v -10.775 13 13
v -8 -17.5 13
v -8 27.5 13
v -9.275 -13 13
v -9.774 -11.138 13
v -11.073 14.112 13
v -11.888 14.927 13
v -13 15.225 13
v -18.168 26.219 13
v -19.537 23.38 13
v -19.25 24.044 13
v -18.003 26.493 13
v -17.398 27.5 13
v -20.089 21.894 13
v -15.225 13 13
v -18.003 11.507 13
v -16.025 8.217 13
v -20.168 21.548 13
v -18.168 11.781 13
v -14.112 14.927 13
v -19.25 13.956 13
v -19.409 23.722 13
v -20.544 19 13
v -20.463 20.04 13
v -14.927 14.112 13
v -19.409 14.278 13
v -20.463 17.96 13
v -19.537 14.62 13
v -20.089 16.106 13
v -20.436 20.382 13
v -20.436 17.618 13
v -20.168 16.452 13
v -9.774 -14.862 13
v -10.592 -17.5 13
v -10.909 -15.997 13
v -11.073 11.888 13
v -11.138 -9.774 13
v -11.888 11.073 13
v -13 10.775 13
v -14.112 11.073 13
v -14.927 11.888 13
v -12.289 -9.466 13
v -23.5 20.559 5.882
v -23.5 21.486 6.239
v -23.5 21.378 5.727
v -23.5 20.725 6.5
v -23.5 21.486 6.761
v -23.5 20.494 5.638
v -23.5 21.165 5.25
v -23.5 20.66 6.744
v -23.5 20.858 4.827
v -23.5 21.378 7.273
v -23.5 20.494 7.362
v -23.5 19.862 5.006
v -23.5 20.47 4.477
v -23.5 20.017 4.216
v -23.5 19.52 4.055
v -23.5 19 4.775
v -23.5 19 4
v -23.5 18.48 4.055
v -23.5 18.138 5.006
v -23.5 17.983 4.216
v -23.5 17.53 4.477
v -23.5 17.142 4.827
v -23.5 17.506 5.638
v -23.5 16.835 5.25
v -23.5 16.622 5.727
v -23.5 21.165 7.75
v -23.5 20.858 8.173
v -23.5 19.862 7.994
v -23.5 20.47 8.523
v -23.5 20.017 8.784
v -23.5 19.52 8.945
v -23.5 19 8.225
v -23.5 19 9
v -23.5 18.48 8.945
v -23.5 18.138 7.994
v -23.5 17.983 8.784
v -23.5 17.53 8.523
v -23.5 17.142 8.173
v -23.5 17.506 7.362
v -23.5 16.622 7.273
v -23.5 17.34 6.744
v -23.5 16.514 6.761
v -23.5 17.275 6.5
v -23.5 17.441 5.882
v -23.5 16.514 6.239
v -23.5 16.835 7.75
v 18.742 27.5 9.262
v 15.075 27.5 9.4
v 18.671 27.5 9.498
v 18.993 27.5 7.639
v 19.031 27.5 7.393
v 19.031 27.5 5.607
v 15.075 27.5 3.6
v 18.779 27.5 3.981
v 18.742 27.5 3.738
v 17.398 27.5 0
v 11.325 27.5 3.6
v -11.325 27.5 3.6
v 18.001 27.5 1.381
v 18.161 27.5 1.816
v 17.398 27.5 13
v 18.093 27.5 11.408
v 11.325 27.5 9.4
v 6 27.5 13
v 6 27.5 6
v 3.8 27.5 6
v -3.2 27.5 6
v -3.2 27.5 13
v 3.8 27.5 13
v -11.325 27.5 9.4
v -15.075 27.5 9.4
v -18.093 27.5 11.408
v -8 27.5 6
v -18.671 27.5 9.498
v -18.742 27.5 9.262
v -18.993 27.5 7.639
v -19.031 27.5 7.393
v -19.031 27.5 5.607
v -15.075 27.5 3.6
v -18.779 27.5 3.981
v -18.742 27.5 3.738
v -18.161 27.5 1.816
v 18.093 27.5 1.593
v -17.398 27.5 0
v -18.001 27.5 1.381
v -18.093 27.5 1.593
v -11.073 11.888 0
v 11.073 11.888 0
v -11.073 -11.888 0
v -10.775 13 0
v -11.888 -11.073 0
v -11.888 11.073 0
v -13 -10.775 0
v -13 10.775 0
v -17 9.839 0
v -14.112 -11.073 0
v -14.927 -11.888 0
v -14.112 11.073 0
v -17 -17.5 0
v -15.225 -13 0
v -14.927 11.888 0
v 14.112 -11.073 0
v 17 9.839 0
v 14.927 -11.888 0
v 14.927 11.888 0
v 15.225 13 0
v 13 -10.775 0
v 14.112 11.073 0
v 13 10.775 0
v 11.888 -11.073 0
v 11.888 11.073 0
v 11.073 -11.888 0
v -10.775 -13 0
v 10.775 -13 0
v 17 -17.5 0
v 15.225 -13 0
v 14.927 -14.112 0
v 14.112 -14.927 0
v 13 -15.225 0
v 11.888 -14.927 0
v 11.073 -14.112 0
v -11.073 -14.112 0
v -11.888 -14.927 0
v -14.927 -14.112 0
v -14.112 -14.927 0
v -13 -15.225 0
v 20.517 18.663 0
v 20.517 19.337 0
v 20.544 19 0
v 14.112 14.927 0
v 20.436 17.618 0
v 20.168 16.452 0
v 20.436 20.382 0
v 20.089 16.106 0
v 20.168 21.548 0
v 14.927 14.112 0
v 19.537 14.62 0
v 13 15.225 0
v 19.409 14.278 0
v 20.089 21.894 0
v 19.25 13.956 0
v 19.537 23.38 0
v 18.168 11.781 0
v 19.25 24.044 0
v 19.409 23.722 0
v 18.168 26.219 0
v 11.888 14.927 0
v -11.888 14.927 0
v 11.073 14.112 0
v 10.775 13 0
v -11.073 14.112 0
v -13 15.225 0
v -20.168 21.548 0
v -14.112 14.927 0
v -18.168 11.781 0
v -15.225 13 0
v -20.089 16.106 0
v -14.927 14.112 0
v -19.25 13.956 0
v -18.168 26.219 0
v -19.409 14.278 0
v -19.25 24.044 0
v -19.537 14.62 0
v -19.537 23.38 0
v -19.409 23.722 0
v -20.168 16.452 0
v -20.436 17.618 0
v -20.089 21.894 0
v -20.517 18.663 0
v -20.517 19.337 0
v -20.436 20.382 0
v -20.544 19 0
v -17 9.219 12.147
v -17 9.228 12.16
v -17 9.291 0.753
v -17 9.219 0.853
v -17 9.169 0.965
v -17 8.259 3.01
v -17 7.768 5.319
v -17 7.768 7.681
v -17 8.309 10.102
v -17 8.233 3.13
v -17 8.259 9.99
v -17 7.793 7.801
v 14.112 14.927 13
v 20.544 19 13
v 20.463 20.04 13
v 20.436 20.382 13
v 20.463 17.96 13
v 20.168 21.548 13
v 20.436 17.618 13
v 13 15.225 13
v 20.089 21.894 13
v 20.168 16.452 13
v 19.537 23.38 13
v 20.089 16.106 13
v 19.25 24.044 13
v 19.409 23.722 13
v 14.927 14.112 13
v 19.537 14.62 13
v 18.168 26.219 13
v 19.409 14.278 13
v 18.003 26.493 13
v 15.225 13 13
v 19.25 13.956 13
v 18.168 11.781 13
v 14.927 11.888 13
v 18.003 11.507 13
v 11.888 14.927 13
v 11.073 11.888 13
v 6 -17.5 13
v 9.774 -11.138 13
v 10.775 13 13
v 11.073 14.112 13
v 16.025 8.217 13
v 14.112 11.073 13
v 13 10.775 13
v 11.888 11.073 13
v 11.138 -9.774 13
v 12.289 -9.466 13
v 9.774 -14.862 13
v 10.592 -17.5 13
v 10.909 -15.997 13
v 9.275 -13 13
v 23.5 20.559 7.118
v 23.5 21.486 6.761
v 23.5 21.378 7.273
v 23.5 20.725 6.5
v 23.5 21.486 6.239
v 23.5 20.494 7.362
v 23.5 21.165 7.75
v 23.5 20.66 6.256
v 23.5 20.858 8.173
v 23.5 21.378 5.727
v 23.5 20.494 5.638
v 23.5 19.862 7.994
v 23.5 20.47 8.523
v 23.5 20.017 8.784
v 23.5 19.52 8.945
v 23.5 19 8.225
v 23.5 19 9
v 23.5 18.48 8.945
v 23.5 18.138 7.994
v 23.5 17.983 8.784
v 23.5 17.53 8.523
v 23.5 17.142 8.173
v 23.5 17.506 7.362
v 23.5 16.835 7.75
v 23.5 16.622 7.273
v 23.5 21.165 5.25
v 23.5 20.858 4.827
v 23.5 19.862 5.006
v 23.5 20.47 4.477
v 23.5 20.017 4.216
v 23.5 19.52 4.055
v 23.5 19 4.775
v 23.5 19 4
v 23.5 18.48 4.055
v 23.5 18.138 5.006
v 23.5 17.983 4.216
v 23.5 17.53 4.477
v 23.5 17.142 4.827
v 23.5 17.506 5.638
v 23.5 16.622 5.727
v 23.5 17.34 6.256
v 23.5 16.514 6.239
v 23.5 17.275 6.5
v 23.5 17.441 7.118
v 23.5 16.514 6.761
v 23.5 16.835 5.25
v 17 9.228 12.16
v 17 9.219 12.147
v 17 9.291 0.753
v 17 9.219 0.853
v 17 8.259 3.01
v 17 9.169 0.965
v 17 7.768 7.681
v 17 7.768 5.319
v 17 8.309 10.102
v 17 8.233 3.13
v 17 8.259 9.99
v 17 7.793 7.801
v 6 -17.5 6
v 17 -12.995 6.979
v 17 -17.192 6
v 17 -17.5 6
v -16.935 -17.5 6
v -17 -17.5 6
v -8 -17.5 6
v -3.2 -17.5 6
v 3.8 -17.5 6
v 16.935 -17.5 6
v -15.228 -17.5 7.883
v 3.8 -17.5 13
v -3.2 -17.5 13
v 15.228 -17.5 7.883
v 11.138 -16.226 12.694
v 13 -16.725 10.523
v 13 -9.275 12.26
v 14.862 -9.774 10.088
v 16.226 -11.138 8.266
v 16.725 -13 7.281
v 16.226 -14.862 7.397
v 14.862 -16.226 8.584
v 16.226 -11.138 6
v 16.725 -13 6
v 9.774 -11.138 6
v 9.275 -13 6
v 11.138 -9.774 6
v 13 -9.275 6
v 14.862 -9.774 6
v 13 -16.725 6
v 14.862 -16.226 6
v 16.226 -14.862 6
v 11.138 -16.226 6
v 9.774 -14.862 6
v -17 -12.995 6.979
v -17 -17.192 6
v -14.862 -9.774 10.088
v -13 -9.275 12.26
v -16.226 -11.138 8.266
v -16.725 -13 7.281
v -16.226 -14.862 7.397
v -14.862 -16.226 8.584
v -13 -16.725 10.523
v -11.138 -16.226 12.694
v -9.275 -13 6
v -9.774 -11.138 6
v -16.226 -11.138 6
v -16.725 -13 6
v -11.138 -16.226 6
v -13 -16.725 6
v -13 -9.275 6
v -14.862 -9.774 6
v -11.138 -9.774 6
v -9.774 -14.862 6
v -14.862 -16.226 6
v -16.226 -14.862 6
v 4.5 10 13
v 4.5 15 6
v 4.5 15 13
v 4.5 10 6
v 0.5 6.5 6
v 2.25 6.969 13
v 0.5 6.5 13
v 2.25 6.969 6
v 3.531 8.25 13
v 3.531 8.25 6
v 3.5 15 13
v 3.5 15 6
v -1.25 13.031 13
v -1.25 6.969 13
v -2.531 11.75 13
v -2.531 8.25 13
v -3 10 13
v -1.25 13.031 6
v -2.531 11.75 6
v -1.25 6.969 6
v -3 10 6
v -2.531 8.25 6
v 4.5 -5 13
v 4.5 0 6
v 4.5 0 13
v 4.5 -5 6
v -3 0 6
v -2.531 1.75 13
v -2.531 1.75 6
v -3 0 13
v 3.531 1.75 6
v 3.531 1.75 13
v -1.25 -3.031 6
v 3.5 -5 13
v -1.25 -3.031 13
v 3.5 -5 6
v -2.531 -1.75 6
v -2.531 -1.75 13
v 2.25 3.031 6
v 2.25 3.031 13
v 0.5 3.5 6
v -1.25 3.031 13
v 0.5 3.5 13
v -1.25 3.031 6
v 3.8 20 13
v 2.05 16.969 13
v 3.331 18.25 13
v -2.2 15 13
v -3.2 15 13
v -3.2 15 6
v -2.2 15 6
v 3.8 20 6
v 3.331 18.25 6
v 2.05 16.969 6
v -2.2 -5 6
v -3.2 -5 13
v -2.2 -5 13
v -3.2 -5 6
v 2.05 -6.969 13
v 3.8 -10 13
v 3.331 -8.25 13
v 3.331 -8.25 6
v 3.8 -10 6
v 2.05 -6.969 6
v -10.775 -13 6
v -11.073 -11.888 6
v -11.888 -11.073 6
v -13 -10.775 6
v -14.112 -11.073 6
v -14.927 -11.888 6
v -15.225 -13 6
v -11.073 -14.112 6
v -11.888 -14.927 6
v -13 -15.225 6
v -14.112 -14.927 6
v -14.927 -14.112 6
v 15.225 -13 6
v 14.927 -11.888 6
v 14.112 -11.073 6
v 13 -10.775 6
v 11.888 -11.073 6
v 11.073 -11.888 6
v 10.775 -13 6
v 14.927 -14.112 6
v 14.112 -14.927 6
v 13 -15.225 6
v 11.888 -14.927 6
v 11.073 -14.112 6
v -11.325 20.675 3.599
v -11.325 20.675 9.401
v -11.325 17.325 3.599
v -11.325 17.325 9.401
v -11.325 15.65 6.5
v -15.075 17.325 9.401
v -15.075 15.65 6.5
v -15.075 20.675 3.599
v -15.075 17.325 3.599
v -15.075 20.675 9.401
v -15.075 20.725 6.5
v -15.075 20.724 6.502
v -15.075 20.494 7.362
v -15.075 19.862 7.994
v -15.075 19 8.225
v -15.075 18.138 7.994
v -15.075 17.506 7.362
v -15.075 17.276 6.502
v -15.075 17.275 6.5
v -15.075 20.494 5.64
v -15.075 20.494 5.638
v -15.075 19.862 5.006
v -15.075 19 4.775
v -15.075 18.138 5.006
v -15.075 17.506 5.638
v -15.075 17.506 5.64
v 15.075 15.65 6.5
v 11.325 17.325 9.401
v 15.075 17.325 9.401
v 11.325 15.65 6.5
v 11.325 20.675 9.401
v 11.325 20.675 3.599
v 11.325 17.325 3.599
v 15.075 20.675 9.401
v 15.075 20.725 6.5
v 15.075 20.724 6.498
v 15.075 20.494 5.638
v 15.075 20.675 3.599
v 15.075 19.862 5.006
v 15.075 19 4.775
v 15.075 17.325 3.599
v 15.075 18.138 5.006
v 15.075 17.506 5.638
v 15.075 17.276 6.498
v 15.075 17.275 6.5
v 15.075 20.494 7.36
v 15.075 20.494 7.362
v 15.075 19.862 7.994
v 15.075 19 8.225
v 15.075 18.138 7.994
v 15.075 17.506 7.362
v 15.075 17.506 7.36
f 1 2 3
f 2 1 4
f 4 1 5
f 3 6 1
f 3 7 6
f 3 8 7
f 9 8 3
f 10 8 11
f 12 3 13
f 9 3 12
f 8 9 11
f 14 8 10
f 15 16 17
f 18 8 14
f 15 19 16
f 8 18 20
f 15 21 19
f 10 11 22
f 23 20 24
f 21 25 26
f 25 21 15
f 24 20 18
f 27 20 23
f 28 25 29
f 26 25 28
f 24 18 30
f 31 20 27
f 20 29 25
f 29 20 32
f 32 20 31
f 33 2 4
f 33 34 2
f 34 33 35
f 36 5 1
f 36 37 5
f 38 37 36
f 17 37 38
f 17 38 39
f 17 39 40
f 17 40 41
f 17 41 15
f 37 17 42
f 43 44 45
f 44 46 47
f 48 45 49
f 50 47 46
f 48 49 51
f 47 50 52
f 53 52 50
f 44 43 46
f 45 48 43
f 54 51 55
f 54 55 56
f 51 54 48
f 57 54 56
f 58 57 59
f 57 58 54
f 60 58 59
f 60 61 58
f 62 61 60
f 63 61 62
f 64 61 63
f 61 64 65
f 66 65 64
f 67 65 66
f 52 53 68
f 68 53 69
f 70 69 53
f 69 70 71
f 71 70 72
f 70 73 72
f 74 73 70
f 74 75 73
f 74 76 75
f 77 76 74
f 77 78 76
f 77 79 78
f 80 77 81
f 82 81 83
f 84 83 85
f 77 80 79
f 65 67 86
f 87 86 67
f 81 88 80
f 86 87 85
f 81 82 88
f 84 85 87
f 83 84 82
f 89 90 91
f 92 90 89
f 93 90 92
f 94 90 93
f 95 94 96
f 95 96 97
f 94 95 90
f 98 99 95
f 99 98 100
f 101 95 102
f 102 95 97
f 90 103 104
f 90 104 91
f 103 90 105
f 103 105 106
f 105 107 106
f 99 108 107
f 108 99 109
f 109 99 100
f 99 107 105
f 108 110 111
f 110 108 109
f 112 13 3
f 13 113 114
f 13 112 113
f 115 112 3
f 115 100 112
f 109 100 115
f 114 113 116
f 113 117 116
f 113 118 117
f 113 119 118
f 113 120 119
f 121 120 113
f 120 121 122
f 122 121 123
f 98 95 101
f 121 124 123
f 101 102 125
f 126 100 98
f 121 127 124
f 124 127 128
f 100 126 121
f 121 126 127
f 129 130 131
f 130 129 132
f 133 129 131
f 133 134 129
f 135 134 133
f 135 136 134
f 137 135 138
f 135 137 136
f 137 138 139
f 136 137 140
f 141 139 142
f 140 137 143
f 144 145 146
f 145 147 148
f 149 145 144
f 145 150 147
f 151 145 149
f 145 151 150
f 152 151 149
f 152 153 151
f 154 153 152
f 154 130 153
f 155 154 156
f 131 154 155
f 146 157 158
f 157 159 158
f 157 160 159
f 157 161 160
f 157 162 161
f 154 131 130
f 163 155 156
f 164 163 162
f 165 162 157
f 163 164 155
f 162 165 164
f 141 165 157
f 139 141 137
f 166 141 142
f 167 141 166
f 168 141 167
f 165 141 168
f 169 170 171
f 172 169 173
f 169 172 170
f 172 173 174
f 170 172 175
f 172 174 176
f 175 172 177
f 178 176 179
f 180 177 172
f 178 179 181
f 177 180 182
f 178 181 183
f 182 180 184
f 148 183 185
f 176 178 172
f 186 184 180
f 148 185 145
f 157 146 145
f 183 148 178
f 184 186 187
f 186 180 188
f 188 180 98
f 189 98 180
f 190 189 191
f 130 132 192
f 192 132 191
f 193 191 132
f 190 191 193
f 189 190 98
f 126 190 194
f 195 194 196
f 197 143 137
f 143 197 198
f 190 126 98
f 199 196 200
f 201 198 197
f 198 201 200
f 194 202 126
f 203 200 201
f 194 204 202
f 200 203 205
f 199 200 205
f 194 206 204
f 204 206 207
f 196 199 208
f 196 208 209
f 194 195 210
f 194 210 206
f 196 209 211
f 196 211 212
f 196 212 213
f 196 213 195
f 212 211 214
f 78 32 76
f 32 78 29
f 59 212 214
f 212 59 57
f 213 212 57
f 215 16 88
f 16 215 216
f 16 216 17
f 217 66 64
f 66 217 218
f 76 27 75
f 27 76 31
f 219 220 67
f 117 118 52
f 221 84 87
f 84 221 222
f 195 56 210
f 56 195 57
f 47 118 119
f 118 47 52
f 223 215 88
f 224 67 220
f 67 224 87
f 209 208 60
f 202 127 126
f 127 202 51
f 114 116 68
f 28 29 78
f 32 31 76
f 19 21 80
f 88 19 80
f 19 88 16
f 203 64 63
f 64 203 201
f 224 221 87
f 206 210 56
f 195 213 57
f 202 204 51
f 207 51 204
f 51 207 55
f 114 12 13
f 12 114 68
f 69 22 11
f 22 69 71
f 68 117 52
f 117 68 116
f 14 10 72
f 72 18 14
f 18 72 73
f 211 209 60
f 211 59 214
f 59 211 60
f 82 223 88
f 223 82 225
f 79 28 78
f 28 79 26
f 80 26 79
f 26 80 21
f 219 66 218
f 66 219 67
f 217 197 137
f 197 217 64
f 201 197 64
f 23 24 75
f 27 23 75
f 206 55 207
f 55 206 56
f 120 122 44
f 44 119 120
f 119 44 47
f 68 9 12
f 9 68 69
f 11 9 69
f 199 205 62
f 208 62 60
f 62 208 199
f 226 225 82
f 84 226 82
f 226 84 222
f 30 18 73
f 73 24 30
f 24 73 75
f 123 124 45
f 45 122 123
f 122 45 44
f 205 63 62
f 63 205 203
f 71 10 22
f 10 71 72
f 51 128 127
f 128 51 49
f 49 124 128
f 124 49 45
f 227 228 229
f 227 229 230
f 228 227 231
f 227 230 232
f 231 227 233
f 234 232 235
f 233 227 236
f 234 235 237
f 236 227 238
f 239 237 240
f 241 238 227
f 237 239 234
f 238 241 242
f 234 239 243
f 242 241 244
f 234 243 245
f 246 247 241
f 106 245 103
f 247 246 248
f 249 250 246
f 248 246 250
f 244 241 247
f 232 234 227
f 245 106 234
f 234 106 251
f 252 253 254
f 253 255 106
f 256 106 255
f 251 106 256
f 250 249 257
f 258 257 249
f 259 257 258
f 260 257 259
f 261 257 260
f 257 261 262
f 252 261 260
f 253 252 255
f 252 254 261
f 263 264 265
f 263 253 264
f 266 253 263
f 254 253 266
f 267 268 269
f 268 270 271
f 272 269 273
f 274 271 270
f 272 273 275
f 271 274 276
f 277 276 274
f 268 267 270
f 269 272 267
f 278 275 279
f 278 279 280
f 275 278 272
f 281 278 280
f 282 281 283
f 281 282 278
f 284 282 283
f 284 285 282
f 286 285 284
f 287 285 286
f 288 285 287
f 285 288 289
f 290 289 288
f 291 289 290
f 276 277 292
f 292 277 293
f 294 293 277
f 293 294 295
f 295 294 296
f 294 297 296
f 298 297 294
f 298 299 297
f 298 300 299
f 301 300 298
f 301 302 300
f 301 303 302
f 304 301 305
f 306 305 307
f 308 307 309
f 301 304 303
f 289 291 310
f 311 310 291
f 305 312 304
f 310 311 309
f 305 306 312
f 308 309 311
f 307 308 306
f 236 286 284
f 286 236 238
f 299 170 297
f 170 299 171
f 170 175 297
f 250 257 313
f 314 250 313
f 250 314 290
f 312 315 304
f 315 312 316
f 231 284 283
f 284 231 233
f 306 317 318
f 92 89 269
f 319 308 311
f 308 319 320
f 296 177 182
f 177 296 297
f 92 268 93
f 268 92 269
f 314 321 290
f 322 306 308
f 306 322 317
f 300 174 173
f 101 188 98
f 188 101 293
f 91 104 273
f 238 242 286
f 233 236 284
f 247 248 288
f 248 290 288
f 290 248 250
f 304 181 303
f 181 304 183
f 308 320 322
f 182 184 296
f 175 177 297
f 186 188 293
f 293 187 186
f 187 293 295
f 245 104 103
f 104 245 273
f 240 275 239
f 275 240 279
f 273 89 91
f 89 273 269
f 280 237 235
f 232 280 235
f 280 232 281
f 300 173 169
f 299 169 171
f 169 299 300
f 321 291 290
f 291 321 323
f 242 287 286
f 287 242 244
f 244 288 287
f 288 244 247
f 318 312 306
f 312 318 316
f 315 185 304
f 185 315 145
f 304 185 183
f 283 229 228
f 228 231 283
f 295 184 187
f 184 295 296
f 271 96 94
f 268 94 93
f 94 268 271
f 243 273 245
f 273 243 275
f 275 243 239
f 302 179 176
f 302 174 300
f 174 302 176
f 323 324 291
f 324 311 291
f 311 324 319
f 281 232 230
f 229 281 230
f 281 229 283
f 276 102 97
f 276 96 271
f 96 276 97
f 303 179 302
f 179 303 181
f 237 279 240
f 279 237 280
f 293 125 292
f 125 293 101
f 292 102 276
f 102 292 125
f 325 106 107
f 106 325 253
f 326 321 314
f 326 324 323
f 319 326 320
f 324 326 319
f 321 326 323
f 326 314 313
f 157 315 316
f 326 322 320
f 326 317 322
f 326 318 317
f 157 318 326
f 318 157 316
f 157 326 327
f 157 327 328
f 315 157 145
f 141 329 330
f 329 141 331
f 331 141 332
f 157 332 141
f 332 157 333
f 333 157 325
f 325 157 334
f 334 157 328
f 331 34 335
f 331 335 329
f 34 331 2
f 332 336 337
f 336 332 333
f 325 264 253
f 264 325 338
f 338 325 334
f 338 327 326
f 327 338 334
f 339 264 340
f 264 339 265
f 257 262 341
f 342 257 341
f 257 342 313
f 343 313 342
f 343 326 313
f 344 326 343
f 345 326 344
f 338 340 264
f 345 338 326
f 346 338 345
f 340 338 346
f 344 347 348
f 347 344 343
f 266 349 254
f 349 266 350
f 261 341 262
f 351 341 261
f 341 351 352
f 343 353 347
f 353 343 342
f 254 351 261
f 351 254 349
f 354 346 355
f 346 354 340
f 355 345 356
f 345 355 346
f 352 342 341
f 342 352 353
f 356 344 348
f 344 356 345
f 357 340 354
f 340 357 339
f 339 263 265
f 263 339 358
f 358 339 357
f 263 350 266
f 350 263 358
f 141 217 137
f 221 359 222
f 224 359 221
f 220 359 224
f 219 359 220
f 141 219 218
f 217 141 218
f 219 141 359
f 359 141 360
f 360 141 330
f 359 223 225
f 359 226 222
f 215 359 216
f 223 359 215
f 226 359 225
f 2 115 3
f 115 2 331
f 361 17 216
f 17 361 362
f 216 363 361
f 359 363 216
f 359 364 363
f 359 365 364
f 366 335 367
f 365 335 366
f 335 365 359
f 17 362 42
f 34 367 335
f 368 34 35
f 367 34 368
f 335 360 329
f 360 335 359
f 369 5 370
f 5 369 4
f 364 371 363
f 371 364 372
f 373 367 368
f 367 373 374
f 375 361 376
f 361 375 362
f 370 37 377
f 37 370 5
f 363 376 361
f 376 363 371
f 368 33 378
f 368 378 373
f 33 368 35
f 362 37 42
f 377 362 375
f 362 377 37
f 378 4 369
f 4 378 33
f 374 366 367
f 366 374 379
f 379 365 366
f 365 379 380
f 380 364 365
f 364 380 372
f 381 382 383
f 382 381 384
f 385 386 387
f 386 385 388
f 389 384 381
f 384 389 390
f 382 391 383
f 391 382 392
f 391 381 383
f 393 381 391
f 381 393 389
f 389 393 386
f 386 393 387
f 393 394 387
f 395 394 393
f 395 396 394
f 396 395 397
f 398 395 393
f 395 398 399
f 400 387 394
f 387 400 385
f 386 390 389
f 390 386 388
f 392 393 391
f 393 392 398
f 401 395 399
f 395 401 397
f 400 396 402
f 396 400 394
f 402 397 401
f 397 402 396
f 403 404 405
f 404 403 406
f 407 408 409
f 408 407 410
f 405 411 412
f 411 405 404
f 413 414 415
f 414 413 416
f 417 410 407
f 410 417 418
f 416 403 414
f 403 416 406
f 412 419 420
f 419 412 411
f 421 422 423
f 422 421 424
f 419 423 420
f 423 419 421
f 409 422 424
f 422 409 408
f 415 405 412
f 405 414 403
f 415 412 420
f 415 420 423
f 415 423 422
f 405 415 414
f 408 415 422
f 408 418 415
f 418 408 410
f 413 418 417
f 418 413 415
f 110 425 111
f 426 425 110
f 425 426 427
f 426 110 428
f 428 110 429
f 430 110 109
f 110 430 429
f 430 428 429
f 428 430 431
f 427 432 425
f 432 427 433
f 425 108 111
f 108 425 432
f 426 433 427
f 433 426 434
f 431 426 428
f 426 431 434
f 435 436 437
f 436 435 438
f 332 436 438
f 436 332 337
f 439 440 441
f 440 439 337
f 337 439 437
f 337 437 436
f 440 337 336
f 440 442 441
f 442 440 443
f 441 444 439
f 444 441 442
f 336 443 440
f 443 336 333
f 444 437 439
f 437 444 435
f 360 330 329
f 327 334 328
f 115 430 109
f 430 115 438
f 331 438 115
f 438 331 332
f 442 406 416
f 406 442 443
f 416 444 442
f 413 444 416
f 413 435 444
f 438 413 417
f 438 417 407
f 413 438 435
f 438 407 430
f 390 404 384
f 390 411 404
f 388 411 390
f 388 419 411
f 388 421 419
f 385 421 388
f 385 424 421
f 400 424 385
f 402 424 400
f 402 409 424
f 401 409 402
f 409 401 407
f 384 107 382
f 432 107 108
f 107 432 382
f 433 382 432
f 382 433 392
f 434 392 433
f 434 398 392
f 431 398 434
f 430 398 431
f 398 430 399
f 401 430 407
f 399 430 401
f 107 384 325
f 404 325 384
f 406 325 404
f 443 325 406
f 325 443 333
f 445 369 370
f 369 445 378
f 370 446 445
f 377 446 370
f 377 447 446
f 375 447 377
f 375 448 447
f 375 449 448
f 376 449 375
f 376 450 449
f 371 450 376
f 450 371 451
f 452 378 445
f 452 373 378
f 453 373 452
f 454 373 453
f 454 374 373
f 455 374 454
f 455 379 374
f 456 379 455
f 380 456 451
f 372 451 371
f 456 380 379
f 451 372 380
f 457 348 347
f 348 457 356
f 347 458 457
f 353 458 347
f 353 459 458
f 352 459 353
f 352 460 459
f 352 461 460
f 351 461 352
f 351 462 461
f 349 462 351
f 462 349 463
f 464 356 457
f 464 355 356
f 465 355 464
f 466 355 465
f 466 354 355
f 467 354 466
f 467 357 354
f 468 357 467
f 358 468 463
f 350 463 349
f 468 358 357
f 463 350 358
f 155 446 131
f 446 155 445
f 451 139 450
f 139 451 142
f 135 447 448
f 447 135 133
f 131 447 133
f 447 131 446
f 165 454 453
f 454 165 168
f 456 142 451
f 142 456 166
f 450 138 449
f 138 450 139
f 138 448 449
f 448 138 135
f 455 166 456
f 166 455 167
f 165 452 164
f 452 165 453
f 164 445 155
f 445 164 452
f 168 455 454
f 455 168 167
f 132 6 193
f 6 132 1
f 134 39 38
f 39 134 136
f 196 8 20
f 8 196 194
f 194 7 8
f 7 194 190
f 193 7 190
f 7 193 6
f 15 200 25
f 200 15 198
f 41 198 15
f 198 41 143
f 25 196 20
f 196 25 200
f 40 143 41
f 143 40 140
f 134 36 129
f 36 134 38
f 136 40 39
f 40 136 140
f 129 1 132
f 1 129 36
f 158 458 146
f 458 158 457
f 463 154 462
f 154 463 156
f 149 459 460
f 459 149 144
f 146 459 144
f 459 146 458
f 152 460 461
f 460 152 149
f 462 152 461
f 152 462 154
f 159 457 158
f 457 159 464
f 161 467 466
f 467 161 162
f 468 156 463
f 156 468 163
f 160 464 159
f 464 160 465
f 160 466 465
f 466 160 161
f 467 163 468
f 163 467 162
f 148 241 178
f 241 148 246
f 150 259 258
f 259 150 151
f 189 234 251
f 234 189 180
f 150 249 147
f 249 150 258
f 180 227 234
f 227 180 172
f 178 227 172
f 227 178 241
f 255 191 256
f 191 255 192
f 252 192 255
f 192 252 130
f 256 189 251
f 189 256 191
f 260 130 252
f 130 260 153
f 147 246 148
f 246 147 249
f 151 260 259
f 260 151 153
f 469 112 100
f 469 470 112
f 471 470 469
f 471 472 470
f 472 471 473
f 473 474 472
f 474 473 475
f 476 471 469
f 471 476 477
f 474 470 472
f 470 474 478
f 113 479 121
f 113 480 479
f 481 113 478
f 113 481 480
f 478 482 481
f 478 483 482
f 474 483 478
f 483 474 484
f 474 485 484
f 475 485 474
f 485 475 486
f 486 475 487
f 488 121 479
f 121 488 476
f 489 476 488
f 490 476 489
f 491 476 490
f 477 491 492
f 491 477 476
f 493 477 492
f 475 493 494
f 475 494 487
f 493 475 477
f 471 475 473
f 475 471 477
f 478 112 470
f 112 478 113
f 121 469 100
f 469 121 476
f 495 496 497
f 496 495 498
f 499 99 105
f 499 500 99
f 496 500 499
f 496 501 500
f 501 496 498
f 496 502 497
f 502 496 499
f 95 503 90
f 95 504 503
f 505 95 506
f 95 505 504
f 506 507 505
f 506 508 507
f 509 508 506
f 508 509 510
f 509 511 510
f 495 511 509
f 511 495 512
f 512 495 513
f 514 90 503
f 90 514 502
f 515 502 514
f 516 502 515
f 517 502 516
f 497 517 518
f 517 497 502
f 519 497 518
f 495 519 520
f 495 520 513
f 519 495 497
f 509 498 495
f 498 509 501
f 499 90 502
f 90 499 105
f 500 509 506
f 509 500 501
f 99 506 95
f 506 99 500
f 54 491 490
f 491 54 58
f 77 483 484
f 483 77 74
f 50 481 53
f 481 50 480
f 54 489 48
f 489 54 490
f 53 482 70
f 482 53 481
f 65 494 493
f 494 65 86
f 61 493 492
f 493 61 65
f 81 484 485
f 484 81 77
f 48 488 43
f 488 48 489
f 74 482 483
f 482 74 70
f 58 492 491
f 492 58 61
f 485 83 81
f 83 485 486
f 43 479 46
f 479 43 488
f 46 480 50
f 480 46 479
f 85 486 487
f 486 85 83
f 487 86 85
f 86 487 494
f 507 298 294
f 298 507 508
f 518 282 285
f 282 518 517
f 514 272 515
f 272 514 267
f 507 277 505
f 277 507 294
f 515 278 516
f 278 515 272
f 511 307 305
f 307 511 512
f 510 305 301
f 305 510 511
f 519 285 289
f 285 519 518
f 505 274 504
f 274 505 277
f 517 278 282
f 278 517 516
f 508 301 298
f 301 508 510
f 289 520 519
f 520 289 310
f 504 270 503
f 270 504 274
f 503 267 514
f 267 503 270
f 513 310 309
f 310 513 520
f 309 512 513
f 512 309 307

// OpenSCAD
// file: configuration.scad
// Increase this if your slicer or printer make holes too tight.
extra_radius = 0.1;

// OD = outside diameter, corner to corner.
m3_nut_od = 6.1;
m3_nut_radius = m3_nut_od/2 + 0.2 + extra_radius;
m3_nut_thickness = 2.4 + extra_radius;
m3_washer_radius = 3.5 + extra_radius;

// Major diameter of metric 3mm thread.
m3_major = 2.85;
m3_radius = m3_major/2 + extra_radius;
m3_wide_radius = m3_major/2 + extra_radius + 0.2;

// OD = outside diameter, corner to corner.
m4_nut_od = 7.1;
m4_nut_radius = m4_nut_od/2 + 0.2 + extra_radius;
m4_washer_radius = 4.5 + extra_radius;

// Major diameter of metric 3mm thread.
m4_major = 3.85;
m4_radius = m4_major/2 + extra_radius;
m4_wide_radius = m4_major/2 + extra_radius + 0.2;

// NEMA17 stepper motors.
motor_shaft_diameter = 5;
motor_shaft_radius = motor_shaft_diameter/2 + extra_radius;

// Frame brackets. M3x8mm screws work best with 3.6 mm brackets.
thickness = 3.6;

// OpenBeam or Misumi. Currently only 15x15 mm, but there is a plan
// to make models more parametric and allow 20x20 mm in the future.
extrusion = 15;

// Placement for the NEMA17 stepper motors.
motor_offset = 44;
motor_length = 47;
// main file
include <configuration.scad>;

// Belt parameters
belt_width_clamp = 6;              // width of the belt, typically 6 (mm)
belt_thickness = 1.0 - 0.05;       // slightly less than actual belt thickness for compression fit (mm)
belt_pitch = 2.0;                  // tooth pitch on the belt, 2 for GT2 (mm)
tooth_radius = 0.8;                // belt tooth radius, 0.8 for GT2 (mm)

separation = 47;
thickness = 6;

horn_thickness = 13;
horn_x = 15;

belt_width = 5;
belt_x = 5.6;
belt_z = 7;
corner_radius = 3.5;

module carriage() {
  // Timing belt (up and down).
  translate([-belt_x, 0, belt_z + belt_width/2]) %
    cube([1.7, 100, belt_width], center=true);
  translate([belt_x, 0, belt_z + belt_width/2]) %
    cube([1.7, 100, belt_width], center=true);

  difference() {
    union() {
      // Main body.
      translate([0, 5, thickness/2])
        cube([34, 45, thickness], center=true);

      // Ball joint mount horns.
      for (x = [-1, 1]) {
        scale([x, 1, 1]) intersection() {
          translate([0, 17, horn_thickness/2])
            cube([separation, 21, horn_thickness], center=true);
          translate([horn_x, 19, horn_thickness/2]) rotate([0, 90, 0])
            cylinder(r1=14, r2=2.5, h=separation/2-horn_x);
        }
      }

      // Avoid touching diagonal push rods (carbon tube).
      difference() {
        translate([11.5, 5, horn_thickness/2+1])
          cube([11, 45, horn_thickness-2], center=true);
        translate([26.5, -9, 12.5]) rotate([30, 40, 30])
          cube([40, 40, 20], center=true);
        translate([13, -13, 0])
          cylinder(r=m4_wide_radius+1.5, h=100, center=true, $fn=12);
      }
      difference() {
        translate([-12.5, 5, horn_thickness/2+1])
          cube([9, 45, horn_thickness-2], center=true);
        translate([-26.5, -9, 12.5]) rotate([30, -40, -30])
          cube([40, 40, 20], center=true);
        translate([-13, -13, 0])
          cylinder(r=m4_wide_radius+1.5, h=100, center=true, $fn=12);
      }

      // Belt clamps.
      for (y = [[10, -1], [0, 1]]) {
        translate([0.5, y[0], horn_thickness/2+1])
          color("green") hull() {
            translate([ corner_radius,  -y[1] * corner_radius + y[1], 0])
              cube([1.0, 5, horn_thickness-2], center=true);
            cylinder(h=horn_thickness-2, r=corner_radius, $fn=12, center=true);
          }
      }
      for (y = [[20, -1], [-10, 1]]) {
        translate([0.30, y[0], horn_thickness/2+1])
          rotate([0, 0, 180]) color("blue") hull() {
            translate([corner_radius-0.5, -y[1] * corner_radius + y[1], 0])
              cube([1.0, 5, horn_thickness-2], center=true);
            cylinder(h=horn_thickness-2, r=corner_radius, $fn=12, center=true);
            translate([0,  y[1]*4, 0])
              cube([2*corner_radius, 0.5*corner_radius + 5.25, horn_thickness-2], center=true);
          }
      }
    }

    // Screws for linear slider.
    for (x = [-13, 13]) {
      for (y = [-13, 13]) {
        translate([x, y, thickness]) #
          cylinder(r=m4_wide_radius, h=30, center=true, $fn=12);
      }
    }

    // Screws for ball joints.
    translate([-30, 19, horn_thickness/2]) rotate([0, 90, 0]) #
      cylinder(r=m3_wide_radius, h=30, center=true, $fn=12);
    translate([30, 19, horn_thickness/2]) rotate([0, 90, 0]) #
      cylinder(r=m3_wide_radius, h=30, center=true, $fn=12);

    // Lock nuts for ball joints.
    for (x = [-1, 1]) {
      scale([x, 1, 1]) # hull() {
        translate([horn_x - 3.7 + 1.9, 19, horn_thickness/2]) rotate([90, 0, -90])
          cylinder(r1=m3_nut_radius, r2=m3_nut_radius, h=m3_nut_thickness*1.5, center=true, $fn=6);
        translate([horn_x - 3.7 + 1.9, 24, horn_thickness/2])
          cube([m3_nut_thickness*1.5, 10, m3_nut_radius * 2 -.9], center=true);
      }
    }
  }
}

carriage();
